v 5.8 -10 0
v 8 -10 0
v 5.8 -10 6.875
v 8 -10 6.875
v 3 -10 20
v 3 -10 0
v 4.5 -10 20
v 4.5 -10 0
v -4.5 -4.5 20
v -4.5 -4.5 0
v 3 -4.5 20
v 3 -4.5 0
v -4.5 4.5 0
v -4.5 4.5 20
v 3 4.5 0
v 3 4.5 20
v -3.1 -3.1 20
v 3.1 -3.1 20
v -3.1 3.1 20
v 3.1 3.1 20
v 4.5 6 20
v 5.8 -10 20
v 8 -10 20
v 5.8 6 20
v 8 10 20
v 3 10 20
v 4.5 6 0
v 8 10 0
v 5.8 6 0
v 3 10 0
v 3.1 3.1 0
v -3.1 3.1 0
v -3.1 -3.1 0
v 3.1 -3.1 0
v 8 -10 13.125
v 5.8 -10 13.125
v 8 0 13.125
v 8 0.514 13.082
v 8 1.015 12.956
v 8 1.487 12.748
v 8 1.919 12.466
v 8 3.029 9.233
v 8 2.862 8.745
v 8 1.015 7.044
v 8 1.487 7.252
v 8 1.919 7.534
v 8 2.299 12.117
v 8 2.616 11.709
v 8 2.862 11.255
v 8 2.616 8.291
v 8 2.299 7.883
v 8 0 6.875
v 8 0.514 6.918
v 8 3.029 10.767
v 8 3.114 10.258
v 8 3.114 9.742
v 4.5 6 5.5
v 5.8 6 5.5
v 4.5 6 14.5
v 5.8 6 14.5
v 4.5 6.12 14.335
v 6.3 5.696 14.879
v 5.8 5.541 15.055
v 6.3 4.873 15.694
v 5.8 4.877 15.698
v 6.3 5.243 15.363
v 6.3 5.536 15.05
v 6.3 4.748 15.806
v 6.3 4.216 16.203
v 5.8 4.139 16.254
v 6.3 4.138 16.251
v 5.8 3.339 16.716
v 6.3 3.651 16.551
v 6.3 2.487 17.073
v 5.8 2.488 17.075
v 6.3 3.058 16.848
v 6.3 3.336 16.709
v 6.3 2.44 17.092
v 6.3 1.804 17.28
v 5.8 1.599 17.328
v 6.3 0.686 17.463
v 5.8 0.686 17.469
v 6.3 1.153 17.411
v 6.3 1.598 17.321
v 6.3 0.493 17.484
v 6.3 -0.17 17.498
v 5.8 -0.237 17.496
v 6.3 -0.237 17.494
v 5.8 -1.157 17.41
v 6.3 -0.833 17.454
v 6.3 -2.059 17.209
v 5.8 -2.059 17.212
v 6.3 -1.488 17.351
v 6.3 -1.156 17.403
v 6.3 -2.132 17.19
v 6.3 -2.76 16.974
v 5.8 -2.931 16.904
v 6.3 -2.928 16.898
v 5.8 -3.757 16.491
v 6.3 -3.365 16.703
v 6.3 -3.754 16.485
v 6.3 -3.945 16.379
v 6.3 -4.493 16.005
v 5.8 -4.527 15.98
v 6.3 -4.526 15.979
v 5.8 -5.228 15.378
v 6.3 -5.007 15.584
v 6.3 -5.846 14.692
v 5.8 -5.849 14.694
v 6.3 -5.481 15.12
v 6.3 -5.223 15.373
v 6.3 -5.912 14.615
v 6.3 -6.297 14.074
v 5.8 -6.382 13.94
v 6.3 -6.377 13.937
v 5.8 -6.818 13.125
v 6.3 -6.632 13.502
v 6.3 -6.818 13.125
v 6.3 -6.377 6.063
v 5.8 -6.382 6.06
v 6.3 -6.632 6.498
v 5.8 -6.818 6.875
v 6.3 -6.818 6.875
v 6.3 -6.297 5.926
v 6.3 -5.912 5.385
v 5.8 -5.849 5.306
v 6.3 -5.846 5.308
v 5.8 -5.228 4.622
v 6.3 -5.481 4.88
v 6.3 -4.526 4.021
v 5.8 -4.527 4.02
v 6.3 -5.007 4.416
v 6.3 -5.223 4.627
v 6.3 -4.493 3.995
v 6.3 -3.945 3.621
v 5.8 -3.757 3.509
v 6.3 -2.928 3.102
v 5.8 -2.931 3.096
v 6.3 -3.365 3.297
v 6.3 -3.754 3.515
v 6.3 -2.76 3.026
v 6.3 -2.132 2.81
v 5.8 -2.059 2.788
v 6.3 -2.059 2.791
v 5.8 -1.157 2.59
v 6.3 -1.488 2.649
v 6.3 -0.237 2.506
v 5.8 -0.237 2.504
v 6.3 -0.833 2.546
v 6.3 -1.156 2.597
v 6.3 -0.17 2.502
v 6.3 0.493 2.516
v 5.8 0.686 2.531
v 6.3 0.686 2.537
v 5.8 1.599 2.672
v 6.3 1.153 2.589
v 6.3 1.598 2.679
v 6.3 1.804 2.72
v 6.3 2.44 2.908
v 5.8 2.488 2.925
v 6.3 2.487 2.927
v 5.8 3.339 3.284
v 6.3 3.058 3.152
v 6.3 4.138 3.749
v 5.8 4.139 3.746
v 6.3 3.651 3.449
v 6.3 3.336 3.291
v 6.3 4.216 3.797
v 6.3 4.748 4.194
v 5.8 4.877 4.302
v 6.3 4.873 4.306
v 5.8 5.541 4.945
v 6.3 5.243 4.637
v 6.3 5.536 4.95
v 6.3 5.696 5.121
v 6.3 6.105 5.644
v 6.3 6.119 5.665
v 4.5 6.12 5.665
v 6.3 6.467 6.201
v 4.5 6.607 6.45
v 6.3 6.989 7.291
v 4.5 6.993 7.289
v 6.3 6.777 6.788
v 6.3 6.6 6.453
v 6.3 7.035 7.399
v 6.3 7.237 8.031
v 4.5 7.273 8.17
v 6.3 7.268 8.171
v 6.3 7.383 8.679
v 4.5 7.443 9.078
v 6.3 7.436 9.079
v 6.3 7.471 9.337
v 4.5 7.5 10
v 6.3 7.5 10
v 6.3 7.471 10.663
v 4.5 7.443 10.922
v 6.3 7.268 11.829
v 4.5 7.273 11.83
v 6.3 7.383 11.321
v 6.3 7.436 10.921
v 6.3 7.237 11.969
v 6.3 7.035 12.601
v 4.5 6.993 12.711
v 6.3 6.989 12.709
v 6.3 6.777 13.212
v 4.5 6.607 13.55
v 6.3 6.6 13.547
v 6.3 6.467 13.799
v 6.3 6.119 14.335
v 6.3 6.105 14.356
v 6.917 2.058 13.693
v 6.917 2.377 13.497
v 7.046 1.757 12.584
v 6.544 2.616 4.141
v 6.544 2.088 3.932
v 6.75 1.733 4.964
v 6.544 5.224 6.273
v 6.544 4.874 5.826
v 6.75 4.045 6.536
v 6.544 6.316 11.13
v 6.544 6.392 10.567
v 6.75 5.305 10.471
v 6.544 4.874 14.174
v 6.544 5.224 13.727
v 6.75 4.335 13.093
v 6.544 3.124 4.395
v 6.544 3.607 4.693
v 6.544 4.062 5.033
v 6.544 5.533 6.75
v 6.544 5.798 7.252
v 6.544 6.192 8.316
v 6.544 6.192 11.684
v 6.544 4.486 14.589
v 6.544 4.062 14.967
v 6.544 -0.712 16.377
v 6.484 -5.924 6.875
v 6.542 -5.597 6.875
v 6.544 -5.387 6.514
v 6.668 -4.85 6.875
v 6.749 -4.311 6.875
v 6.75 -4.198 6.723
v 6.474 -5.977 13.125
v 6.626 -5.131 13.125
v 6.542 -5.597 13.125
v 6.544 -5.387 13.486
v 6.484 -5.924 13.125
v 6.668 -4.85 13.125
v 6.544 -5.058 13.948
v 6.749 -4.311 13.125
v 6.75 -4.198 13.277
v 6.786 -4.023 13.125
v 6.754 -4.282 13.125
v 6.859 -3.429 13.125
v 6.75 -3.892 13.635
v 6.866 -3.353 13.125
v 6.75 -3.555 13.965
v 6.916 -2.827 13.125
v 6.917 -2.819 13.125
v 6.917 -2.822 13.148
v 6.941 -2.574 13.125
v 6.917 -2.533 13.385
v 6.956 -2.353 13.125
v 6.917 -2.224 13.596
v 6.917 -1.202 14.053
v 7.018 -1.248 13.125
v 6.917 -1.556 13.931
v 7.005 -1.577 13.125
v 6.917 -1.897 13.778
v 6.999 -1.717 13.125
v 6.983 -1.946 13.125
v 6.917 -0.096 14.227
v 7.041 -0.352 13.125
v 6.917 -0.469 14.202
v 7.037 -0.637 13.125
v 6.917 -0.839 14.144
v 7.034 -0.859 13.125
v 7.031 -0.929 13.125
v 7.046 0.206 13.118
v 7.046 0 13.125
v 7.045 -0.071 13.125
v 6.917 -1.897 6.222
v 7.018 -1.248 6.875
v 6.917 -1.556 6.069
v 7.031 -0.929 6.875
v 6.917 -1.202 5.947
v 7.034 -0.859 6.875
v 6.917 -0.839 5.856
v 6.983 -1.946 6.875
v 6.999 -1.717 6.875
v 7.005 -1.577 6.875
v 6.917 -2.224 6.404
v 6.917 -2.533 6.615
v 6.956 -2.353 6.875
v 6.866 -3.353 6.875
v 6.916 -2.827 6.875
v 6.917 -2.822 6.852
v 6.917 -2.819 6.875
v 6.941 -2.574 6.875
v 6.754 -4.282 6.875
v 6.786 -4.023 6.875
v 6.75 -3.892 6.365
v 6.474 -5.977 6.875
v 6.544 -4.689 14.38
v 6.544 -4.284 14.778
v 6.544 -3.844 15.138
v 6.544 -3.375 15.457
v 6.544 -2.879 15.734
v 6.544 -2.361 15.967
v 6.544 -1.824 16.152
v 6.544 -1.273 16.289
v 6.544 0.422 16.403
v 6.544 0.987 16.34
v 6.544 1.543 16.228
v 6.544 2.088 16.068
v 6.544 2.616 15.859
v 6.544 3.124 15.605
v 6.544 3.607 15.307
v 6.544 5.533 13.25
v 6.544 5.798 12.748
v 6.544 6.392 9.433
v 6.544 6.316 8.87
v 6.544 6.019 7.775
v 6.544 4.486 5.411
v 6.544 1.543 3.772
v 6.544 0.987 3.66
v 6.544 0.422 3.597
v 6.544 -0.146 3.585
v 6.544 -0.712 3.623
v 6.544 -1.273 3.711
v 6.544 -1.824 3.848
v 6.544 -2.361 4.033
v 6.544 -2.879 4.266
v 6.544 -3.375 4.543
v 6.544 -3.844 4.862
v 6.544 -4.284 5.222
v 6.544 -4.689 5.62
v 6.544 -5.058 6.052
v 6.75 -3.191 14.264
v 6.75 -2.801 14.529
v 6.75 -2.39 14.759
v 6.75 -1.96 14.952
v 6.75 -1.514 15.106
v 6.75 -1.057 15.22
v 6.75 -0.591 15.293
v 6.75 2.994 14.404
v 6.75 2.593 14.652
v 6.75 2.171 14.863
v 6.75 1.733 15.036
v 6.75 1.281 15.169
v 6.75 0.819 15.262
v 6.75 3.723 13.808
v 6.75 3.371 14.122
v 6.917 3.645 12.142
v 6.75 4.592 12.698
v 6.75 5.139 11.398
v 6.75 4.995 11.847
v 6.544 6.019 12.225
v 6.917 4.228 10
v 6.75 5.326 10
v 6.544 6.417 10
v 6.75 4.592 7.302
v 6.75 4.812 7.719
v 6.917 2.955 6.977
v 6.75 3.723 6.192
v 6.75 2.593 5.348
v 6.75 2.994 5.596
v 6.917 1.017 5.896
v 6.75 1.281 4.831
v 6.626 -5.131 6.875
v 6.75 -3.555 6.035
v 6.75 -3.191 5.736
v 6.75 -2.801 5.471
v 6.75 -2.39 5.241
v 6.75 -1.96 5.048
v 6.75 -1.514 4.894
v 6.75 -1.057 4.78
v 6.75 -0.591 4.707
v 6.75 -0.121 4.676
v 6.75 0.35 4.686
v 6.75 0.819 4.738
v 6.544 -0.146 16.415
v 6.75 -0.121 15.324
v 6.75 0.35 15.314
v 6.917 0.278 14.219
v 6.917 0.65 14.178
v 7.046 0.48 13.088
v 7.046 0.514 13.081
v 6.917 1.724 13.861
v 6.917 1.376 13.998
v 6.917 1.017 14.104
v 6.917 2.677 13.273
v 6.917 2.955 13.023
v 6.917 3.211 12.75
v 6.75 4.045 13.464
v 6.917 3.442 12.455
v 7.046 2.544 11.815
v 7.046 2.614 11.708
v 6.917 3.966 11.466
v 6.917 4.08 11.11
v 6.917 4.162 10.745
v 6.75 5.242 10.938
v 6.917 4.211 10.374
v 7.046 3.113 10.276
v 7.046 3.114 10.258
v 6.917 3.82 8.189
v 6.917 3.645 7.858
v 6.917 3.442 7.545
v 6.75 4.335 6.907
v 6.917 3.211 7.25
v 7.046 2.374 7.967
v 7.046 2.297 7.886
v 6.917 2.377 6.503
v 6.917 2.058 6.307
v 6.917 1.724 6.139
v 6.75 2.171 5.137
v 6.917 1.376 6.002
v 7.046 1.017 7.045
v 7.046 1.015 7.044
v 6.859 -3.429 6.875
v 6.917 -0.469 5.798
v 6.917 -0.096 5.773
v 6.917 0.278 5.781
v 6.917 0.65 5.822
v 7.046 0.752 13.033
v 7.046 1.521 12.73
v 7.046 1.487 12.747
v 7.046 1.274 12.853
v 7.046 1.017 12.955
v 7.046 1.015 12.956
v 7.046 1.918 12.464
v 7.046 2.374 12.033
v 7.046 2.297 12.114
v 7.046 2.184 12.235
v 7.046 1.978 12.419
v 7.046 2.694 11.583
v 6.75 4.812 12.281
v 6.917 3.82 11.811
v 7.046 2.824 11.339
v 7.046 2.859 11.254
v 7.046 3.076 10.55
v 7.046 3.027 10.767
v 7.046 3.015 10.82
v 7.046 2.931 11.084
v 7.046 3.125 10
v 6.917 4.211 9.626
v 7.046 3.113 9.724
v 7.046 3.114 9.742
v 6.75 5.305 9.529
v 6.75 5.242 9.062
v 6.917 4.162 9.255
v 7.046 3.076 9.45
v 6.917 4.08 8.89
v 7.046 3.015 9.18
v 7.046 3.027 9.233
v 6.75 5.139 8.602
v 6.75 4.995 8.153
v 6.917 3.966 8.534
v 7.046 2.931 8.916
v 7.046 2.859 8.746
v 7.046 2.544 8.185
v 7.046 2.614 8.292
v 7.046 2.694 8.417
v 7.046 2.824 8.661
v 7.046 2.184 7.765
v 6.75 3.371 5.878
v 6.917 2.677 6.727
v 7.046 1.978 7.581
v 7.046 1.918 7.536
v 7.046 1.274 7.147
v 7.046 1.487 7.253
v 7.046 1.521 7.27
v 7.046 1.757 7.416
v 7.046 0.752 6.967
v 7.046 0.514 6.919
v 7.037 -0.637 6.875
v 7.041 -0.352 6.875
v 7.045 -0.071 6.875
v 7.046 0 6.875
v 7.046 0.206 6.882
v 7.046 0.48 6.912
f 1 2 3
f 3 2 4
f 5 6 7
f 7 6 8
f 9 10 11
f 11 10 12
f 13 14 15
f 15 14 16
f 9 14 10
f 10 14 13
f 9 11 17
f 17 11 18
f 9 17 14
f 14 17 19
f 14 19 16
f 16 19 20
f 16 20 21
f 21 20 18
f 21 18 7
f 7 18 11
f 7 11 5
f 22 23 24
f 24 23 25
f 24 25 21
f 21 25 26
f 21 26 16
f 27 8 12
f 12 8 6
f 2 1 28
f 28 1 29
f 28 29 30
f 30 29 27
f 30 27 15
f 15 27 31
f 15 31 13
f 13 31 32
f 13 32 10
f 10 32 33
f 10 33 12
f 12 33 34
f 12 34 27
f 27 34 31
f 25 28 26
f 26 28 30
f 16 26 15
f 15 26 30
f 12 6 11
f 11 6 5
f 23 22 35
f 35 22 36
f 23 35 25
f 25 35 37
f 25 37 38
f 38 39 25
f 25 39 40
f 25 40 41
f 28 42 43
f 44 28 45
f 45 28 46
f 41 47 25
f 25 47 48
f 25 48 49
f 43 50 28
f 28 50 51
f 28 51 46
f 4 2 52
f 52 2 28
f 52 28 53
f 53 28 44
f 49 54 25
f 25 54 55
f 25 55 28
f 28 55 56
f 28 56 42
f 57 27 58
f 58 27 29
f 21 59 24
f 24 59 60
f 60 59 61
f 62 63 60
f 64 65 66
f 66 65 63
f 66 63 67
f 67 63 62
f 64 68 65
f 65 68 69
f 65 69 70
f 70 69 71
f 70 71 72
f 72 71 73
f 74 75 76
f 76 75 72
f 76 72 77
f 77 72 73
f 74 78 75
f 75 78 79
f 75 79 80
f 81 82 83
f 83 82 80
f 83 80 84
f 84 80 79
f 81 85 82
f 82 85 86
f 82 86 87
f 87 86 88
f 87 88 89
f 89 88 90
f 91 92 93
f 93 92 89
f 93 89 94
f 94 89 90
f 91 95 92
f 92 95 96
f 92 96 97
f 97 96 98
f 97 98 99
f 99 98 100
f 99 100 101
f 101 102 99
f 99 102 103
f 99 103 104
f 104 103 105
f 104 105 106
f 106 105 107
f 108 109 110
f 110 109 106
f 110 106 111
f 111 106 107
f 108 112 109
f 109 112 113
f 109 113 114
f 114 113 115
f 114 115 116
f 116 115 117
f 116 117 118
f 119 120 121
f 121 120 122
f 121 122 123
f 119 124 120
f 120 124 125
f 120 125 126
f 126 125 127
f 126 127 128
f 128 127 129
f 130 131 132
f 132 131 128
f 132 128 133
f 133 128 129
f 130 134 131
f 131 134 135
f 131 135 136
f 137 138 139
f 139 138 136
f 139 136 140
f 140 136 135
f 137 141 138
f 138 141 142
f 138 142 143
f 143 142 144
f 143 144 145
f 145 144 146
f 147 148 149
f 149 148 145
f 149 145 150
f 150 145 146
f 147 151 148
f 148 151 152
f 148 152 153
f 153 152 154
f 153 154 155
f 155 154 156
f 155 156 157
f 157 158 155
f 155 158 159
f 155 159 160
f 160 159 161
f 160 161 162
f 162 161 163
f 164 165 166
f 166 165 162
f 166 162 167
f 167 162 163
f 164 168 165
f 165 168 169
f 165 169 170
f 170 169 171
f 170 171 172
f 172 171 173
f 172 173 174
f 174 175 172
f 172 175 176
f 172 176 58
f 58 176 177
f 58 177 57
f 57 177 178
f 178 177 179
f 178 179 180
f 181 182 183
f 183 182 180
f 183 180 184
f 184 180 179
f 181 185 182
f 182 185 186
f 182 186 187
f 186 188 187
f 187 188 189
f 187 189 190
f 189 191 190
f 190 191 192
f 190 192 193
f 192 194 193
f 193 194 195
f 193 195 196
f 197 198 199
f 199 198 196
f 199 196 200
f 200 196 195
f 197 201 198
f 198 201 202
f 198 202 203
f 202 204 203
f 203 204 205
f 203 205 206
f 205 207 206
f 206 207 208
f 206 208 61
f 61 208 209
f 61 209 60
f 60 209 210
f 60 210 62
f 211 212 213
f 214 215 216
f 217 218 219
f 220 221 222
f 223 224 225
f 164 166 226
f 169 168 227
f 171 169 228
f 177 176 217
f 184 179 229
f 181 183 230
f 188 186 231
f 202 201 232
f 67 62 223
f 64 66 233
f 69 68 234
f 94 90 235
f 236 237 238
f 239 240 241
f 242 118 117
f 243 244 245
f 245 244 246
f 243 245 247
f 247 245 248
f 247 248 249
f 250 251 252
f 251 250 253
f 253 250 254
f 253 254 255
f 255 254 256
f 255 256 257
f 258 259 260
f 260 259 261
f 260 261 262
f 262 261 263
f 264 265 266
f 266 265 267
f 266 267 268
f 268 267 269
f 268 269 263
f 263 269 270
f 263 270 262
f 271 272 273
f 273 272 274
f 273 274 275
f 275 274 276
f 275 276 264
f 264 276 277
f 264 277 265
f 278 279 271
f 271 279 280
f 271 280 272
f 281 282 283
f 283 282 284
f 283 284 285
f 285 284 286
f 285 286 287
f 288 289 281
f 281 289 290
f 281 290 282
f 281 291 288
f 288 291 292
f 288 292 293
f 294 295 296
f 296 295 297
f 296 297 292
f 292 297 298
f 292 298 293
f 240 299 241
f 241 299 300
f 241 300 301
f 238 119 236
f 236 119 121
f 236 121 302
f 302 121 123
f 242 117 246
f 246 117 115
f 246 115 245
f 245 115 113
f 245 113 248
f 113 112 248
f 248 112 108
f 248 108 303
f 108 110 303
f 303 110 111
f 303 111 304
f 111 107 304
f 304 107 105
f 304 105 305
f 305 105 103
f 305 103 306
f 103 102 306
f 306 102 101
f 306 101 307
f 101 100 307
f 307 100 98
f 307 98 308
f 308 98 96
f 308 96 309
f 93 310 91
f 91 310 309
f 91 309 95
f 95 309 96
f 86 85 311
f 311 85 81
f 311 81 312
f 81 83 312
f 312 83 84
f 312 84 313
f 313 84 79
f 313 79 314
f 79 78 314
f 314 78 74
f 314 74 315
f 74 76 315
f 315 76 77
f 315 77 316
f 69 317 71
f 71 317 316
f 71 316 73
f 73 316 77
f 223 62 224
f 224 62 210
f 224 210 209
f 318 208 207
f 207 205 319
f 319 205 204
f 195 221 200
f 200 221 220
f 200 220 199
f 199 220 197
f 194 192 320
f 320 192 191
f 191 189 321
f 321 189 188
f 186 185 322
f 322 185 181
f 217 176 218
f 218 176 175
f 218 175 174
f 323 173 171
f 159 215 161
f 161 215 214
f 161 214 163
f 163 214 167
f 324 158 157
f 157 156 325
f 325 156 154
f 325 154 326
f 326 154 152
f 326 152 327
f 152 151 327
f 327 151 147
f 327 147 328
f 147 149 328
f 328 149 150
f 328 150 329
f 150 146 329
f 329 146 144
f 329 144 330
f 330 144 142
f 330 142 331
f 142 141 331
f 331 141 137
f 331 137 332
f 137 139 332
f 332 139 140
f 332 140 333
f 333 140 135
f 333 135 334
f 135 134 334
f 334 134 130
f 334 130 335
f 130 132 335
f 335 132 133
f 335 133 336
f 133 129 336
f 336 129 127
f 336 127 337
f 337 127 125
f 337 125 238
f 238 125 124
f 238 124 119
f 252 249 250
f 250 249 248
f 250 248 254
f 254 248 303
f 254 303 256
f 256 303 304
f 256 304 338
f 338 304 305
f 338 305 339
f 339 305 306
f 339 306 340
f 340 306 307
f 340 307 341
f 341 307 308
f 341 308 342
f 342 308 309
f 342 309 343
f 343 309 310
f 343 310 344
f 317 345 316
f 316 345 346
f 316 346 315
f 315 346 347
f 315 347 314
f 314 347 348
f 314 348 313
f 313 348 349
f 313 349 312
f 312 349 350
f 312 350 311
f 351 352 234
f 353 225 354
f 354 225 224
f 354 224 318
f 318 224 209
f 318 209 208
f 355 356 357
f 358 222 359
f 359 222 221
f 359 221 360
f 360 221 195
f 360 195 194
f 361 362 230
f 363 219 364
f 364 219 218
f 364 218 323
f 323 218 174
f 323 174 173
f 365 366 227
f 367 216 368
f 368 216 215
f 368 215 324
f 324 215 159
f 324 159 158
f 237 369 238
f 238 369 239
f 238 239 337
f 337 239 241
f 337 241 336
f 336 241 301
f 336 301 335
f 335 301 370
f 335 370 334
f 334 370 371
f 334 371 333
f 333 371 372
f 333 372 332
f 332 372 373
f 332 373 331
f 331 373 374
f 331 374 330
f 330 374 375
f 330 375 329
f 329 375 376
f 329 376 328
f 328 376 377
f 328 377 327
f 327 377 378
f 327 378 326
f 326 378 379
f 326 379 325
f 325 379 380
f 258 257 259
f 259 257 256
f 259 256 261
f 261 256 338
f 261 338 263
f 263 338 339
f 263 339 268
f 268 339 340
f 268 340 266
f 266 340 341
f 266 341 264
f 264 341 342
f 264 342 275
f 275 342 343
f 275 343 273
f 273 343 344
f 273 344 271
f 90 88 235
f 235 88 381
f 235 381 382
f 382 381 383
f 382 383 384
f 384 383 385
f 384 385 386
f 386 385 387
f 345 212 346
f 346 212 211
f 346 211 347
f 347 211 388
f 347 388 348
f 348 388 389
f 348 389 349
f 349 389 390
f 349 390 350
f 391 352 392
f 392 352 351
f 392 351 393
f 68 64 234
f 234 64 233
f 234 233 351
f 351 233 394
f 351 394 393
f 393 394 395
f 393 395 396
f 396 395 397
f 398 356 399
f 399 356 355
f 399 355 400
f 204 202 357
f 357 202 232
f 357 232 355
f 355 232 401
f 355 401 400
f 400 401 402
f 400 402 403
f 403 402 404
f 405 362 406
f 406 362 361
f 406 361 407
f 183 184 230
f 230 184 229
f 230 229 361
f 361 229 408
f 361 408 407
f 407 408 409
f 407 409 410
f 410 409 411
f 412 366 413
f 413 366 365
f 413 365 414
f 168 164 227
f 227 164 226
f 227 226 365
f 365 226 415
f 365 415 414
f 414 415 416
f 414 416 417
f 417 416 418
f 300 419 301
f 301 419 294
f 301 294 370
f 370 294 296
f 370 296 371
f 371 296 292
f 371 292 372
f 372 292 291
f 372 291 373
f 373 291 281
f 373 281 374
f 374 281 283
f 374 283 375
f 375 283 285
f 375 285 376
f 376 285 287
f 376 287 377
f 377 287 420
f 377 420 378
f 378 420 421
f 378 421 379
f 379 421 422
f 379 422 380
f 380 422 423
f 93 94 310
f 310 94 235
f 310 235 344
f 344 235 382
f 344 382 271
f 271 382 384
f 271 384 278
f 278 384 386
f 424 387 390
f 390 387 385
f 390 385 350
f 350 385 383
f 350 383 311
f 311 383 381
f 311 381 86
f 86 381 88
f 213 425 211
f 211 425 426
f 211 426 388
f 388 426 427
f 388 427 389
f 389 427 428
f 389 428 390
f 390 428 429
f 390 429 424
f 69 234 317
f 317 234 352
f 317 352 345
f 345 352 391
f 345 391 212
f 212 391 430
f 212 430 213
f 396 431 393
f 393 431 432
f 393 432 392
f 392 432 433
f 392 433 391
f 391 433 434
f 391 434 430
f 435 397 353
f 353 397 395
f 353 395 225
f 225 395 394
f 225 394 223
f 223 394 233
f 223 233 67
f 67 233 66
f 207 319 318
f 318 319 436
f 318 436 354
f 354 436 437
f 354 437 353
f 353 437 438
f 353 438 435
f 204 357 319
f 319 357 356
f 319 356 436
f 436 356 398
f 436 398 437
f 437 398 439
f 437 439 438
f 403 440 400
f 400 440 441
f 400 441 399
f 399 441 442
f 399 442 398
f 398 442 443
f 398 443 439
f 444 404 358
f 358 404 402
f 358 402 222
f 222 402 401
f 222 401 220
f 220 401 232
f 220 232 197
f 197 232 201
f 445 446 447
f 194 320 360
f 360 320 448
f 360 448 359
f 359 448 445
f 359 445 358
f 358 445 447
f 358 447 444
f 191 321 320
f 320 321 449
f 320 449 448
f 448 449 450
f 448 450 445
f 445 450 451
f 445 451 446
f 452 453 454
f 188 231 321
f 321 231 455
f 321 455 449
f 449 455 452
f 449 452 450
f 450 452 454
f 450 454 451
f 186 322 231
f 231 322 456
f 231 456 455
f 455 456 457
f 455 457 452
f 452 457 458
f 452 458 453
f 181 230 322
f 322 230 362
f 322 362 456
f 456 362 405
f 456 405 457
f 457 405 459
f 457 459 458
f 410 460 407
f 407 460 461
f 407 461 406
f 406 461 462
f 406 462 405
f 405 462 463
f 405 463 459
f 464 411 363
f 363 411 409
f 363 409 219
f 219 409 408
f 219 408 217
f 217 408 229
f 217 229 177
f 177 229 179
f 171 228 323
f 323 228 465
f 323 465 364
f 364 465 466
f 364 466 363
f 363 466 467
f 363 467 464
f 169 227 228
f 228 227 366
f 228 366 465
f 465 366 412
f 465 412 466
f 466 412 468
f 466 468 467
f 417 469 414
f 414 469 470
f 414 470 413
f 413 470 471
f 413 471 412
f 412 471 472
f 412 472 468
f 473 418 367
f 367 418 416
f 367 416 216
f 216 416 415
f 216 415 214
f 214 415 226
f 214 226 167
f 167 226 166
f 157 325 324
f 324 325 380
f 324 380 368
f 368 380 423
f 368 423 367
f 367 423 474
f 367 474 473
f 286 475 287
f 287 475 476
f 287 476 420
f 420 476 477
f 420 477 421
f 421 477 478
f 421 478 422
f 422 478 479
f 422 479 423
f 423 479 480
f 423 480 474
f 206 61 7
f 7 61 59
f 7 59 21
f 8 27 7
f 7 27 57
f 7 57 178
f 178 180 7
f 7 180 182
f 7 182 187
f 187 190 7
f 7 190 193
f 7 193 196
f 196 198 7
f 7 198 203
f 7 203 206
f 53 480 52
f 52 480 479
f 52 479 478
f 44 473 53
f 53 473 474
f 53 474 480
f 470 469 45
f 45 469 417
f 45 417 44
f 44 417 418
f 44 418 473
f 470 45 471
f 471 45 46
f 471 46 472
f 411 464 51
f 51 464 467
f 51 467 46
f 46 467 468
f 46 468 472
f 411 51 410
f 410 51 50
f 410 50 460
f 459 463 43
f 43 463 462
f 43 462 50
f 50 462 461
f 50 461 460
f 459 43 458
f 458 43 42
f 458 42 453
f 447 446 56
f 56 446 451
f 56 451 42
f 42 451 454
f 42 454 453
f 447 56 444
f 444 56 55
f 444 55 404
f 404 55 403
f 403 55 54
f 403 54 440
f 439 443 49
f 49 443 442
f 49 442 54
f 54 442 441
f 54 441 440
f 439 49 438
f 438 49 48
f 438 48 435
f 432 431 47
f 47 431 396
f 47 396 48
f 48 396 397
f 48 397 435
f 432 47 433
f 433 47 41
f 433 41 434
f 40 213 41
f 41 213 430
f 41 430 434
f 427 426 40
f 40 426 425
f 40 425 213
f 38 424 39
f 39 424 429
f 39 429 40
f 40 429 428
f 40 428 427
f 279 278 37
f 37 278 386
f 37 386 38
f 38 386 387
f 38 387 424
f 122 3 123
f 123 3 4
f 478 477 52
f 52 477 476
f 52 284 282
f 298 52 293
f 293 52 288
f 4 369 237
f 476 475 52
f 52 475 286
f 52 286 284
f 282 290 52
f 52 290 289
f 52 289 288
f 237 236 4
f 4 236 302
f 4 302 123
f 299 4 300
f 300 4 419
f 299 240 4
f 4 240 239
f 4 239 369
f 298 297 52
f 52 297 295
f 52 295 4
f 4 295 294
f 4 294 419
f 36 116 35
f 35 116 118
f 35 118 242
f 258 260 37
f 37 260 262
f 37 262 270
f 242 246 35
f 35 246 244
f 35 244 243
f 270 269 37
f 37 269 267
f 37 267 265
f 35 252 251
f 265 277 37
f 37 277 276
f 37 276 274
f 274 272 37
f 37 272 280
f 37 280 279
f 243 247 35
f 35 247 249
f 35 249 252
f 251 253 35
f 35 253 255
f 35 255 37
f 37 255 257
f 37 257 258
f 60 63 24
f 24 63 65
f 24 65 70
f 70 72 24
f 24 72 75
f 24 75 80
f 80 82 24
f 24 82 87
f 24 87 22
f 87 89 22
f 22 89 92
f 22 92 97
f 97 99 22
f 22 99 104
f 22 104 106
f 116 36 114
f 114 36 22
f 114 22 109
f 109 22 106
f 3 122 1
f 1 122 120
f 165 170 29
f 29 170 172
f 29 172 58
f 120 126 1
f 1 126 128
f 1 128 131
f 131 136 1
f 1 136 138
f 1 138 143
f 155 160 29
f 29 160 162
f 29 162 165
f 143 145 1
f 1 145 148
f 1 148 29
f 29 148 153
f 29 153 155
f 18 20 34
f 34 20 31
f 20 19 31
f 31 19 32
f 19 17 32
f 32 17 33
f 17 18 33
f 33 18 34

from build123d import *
from build123d.topology import SkipClean

# Parameters (mm, degrees)
SKETCH1_W           = 9
SKETCH1_H           = 9
BOSS_EXTRUDE1_DEPTH = 20
SKETCH2_W           = 6
SKETCH2_H           = 6
CUT_EXTRUDE1_DEPTH  = 21.988091862
SKETCH4_W           = 20
SKETCH4_H           = 20
BOSS_EXTRUDE2_DEPTH = 1.5
SKETCH5_W           = 20
SKETCH5_H           = 20
BOSS_EXTRUDE3_DEPTH = 3.5
SKETCH7_W           = 1.8
SKETCH7_H           = 20
CUT_EXTRUDE5_DEPTH  = 16
CUT_EXTRUDE6_START  = -1.7
CUT_EXTRUDE6_DEPTH  = 1.7
BOSS_EXTRUDE4_START = 0.5
BOSS_EXTRUDE4_DEPTH = 0.5
SKETCH10_W          = 6.2
SKETCH10_H          = 6.2
CUT_EXTRUDE8_DEPTH  = 24.748684208


with BuildPart() as part:
    # Sketch1 → Boss-Extrude1 (new body)
    with BuildSketch(Plane.XY):
        Rectangle(SKETCH1_W, SKETCH1_H)
    extrude(amount=BOSS_EXTRUDE1_DEPTH)

    # Sketch2 → Cut-Extrude1 (cut, through all)
    with BuildSketch(Plane(origin=(0, 0, 0), x_dir=(-1, 0, 0), z_dir=(0, 0, -1))):
        Rectangle(SKETCH2_W, SKETCH2_H)
    extrude(amount=-CUT_EXTRUDE1_DEPTH, mode=Mode.SUBTRACT)

    # Sketch4 → Boss-Extrude2 (add)
    with BuildSketch(Plane(origin=(4.5, 0, 0), x_dir=(0, 0, -1), z_dir=(1, 0, 0))):
        with Locations((-10, 0)):
            Rectangle(SKETCH4_W, SKETCH4_H)
    extrude(amount=-BOSS_EXTRUDE2_DEPTH)

    # Sketch5 → Boss-Extrude3 (add)
    with BuildSketch(Plane(origin=(4.5, 0, 0), x_dir=(0, 0, -1), z_dir=(1, 0, 0))):
        with Locations((-10, 0)):
            Rectangle(SKETCH5_W, SKETCH5_H)
    extrude(amount=BOSS_EXTRUDE3_DEPTH)

    # Sketch6 → Cut-Revolve2 (revolve, cut)
    with BuildSketch(Plane(origin=(0, 0, 10), x_dir=(-1, 0, 0), z_dir=(0, 0, -1)), mode=Mode.PRIVATE) as cut_revolve2_sk:
        with BuildLine():
            Line((-4.5, 7.5), (-4.5, 0))
            Line((-4.5, 0), (-7.200284, 0))
            ThreePointArc((-7.200284, 0), (-6.974408022, 3.776920415), (-6.3, 7.5))
            Line((-6.3, 7.5), (-4.5, 7.5))
        make_face()
    revolve(cut_revolve2_sk.sketch.rotate(Axis((88.99, 0, 10), (-1, 0, 0)), 90), axis=Axis((88.99, 0, 10), (-1, 0, 0)), mode=Mode.SUBTRACT)

    # Sketch7 → Cut-Extrude5 (cut)
    with BuildSketch(Plane.XZ.offset(10)):
        with Locations((5.4, 10)):
            Rectangle(SKETCH7_W, SKETCH7_H)
    extrude(amount=-CUT_EXTRUDE5_DEPTH, mode=Mode.SUBTRACT)

    # Sketch8 → Cut-Extrude6 (cut)
    with BuildSketch(Plane(origin=(8, 0, 0), x_dir=(0, 0, -1), z_dir=(1, 0, 0)).offset(CUT_EXTRUDE6_START)):
        with BuildLine():
            Line((-6.875, 0), (-6.875, -10))
            ThreePointArc((-6.875, -10), (-10, -13.125), (-13.125, -10))
            Line((-13.125, -10), (-13.125, 0))
            ThreePointArc((-13.125, 0), (-10, 3.125), (-6.875, 0))
        make_face()
    extrude(amount=CUT_EXTRUDE6_DEPTH, mode=Mode.SUBTRACT)

    # Sketch9 → Boss-Extrude4 (add)
    with SkipClean():  # the faces are left unmerged after this step: merging them gives an invalid solid
        with BuildSketch(Plane.ZY.offset(-6.3).offset(BOSS_EXTRUDE4_START)):
            with BuildLine():
                Line((13.125, -6.817945072), (13.125, -10))
                Line((13.125, -10), (20, -10))
                Line((20, -10), (20, 6))
                Line((20, 6), (14.5, 6))
                ThreePointArc((14.5, 6), (17.457216989, -0.799946739), (13.125, -6.817945072))
            make_face()
            with BuildLine():
                Line((0, -10), (6.875, -10))
                Line((6.875, -10), (6.875, -6.817945072))
                ThreePointArc((6.875, -6.817945072), (2.542783011, -0.799946739), (5.5, 6))
                Line((5.5, 6), (0, 6))
                Line((0, 6), (0, -10))
            make_face()
        extrude(amount=-BOSS_EXTRUDE4_DEPTH)

    # Sketch10 → Cut-Extrude8 (cut, through all)
    with SkipClean():  # the faces are left unmerged after this step: merging them gives an invalid solid
        with BuildSketch(Plane(origin=(0, 0, 0), x_dir=(-1, 0, 0), z_dir=(0, 0, -1))):
            Rectangle(SKETCH10_W, SKETCH10_H)
        extrude(amount=-CUT_EXTRUDE8_DEPTH, mode=Mode.SUBTRACT)


solid = part.part
